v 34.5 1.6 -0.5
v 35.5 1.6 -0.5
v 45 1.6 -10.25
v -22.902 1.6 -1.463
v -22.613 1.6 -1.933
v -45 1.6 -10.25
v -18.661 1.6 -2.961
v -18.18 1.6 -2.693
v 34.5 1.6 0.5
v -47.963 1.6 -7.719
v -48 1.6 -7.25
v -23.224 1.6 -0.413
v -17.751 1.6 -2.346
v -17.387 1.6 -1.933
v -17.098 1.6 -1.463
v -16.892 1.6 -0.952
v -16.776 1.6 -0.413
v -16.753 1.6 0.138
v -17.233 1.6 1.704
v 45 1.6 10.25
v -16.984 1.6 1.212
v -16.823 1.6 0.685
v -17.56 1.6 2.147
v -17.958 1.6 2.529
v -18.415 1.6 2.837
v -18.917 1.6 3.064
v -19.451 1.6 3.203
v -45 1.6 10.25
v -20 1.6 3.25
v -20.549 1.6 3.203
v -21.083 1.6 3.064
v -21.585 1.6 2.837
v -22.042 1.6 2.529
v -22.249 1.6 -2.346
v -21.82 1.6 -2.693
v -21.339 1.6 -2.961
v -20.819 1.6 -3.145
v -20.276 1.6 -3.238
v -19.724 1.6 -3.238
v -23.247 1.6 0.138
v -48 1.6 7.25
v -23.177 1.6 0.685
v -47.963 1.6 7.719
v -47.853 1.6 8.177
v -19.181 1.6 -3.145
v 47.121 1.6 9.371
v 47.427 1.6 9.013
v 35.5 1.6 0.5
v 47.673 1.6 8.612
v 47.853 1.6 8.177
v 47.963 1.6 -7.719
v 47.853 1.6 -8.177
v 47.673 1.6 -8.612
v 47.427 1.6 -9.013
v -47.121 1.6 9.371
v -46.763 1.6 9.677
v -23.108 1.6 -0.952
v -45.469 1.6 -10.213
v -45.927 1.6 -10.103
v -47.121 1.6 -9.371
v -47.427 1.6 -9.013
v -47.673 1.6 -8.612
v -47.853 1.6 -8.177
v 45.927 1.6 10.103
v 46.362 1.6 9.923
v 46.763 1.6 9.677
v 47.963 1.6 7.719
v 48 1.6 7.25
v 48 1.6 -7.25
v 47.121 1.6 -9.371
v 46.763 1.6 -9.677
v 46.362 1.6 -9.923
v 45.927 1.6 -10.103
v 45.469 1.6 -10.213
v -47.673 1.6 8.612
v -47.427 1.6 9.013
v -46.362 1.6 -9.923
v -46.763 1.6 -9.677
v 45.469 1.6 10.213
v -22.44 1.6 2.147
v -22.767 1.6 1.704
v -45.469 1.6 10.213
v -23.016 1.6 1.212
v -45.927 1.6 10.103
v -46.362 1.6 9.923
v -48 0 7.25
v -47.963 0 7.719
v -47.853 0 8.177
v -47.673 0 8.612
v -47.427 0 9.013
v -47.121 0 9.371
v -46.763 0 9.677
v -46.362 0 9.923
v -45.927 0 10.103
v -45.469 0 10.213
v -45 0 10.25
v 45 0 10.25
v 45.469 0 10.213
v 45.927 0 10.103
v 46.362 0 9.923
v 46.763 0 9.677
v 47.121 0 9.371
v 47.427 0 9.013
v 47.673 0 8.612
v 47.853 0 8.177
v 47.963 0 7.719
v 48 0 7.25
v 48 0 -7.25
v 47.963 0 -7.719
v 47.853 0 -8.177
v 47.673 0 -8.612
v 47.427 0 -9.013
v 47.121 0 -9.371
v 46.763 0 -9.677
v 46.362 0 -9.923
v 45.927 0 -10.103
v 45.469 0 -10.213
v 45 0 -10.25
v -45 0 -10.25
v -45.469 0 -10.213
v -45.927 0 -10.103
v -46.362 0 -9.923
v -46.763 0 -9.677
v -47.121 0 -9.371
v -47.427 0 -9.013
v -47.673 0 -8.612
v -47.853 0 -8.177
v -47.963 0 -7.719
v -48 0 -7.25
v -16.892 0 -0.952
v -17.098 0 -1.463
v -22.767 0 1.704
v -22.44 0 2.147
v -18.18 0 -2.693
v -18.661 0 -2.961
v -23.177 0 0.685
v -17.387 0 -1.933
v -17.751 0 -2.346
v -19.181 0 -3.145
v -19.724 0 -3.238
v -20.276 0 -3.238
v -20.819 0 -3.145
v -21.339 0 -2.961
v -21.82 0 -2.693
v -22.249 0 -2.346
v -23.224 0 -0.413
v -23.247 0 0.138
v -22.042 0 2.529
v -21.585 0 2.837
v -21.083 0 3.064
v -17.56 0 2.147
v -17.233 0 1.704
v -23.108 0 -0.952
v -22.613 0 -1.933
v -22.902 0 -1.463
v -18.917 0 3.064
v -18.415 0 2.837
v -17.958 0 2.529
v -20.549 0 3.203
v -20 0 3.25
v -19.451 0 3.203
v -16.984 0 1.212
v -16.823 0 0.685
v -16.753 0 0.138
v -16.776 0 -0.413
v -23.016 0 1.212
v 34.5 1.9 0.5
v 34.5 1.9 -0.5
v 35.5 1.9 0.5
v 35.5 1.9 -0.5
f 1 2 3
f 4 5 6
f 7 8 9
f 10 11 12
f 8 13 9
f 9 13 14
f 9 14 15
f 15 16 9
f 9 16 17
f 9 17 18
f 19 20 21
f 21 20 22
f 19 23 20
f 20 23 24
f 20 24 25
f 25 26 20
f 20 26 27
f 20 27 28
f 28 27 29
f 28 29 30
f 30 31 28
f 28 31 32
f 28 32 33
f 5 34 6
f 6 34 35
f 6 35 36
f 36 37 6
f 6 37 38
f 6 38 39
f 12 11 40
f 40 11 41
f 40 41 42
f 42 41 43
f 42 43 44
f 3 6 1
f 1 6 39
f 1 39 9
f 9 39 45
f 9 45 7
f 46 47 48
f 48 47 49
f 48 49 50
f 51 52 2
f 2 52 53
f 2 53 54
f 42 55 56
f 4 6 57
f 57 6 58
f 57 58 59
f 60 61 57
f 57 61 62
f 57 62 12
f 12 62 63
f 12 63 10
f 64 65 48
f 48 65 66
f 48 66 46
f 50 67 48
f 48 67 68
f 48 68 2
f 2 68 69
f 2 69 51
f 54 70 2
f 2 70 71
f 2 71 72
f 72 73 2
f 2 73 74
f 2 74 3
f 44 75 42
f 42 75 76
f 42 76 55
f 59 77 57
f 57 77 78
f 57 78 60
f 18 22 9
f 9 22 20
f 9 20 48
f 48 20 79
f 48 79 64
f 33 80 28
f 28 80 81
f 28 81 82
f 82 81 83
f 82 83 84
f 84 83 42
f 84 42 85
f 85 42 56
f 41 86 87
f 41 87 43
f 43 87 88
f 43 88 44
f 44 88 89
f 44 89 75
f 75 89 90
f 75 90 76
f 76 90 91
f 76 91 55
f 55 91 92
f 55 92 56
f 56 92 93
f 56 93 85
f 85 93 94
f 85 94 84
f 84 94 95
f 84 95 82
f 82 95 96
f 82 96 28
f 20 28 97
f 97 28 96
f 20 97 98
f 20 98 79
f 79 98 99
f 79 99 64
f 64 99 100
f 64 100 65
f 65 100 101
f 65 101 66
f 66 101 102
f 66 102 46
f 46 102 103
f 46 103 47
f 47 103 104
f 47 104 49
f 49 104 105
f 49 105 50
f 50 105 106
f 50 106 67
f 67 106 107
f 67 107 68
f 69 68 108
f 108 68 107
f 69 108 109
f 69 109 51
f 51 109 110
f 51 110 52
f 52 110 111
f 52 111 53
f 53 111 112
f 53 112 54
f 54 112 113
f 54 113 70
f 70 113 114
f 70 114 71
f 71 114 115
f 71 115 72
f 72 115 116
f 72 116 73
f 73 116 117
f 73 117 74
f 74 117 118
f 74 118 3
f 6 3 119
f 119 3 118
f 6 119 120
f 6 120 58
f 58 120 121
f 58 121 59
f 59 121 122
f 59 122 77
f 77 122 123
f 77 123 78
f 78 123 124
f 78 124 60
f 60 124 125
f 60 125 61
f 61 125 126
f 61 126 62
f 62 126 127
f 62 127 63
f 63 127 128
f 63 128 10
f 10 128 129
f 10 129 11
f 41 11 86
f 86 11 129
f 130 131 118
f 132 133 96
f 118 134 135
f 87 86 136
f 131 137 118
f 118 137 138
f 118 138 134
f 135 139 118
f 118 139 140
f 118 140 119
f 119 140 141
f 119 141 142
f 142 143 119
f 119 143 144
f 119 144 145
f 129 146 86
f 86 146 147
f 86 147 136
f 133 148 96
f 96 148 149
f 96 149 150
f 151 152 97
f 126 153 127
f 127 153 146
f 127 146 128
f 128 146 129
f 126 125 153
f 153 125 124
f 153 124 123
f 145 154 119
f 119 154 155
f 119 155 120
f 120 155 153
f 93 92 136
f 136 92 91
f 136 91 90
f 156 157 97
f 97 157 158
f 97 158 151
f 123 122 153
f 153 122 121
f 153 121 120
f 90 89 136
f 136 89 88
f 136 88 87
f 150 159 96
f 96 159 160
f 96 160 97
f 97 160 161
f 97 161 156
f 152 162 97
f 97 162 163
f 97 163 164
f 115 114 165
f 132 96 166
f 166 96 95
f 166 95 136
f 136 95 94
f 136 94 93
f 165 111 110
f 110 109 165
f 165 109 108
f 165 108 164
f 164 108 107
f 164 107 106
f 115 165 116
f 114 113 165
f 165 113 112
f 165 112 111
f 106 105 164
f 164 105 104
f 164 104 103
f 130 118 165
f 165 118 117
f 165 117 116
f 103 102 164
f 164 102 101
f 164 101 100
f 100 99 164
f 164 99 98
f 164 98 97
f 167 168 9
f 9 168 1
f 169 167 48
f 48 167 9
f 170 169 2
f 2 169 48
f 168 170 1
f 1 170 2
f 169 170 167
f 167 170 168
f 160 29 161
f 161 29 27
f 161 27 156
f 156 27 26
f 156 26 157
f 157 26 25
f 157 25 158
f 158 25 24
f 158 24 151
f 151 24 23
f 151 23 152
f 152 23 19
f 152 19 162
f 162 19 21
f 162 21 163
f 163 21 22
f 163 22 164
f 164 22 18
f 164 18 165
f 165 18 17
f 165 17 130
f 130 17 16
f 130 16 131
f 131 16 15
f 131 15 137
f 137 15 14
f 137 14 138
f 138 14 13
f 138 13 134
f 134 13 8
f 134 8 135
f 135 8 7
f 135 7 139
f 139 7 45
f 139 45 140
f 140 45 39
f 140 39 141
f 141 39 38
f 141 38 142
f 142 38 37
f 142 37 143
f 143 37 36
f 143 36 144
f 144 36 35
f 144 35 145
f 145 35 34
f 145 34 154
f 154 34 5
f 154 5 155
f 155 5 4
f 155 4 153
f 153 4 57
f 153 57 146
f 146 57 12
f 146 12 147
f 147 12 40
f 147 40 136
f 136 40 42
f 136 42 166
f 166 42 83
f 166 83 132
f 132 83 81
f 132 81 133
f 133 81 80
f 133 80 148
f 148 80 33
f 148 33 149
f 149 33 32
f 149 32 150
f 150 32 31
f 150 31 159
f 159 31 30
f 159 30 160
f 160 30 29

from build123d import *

# Parameters (mm, degrees)
BOSS_EXTRUDE1_DEPTH = 1.6
SKETCH2_W           = 1
SKETCH2_H           = 1
BOSS_EXTRUDE2_DEPTH = 0.3
SKETCH3_R           = 3.25
CUT_EXTRUDE1_DEPTH  = 50.108273234


with BuildPart() as part:
    # Sketch1 → Boss-Extrude1 (new body)
    with BuildSketch(Plane(origin=(0, 0, 0), x_dir=(1, 0, 0), z_dir=(0, 1, 0))):
        with BuildLine():
            Line((-45, 10.25), (45, 10.25))
            ThreePointArc((45, 10.25), (47.121320344, 9.371320344), (48, 7.25))
            Line((48, 7.25), (48, -7.25))
            ThreePointArc((48, -7.25), (47.121320344, -9.371320344), (45, -10.25))
            Line((45, -10.25), (-45, -10.25))
            ThreePointArc((-45, -10.25), (-47.121320344, -9.371320344), (-48, -7.25))
            Line((-48, -7.25), (-48, 7.25))
            ThreePointArc((-48, 7.25), (-47.121320344, 9.371320344), (-45, 10.25))
        make_face()
    extrude(amount=BOSS_EXTRUDE1_DEPTH)

    # Sketch2 → Boss-Extrude2 (add)
    with BuildSketch(Plane(origin=(0, 1.6, 0), x_dir=(1, 0, 0), z_dir=(0, 1, 0))):
        with Locations((35, 0)):
            Rectangle(SKETCH2_W, SKETCH2_H)
    extrude(amount=BOSS_EXTRUDE2_DEPTH)

    # Sketch3 → Cut-Extrude1 (cut, through all)
    with BuildSketch(Plane(origin=(0, 1.6, 0), x_dir=(1, 0, 0), z_dir=(0, 1, 0))):
        with Locations(Location((-20, 0, 0), (0, 0, 270))):
            Circle(SKETCH3_R)
    extrude(amount=-CUT_EXTRUDE1_DEPTH, mode=Mode.SUBTRACT)


solid = part.part
